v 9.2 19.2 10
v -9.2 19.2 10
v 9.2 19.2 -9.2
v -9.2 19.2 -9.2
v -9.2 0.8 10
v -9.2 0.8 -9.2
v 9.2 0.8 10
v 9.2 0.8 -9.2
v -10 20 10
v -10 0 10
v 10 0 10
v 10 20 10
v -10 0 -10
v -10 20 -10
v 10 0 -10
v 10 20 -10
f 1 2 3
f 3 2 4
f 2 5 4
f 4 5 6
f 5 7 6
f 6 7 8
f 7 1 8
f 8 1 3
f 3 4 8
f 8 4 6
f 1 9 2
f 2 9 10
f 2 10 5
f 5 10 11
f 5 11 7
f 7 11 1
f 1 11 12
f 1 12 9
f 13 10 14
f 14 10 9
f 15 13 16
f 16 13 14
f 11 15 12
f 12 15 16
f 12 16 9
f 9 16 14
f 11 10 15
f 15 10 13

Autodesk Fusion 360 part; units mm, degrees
sketch "Sketch1" plane through (0, 0, 0) normal (0, 1, 0) x (1, 0, 0)
  line L0 (10, 10) -> (-10, 10)
  line L1 (-10, 10) -> (-10, -10)
  line L2 (-10, -10) -> (10, -10)
  line L3 (10, -10) -> (10, 10)
  line L4 (10, 10) -> (-10, -10) construction
  line L5 (-10, 10) -> (10, -10) construction
  dimension "d1" = 20
  dimension "d2" = 20
extrude "Extrude1" add sketch "Sketch1" along normal blind 20
sketch "Sketch2" plane through (0, 0, 10) normal (0, 0, 1) x (-1, 0, 0)
  line L0 (10, 0) -> (-10, 0)
  line L1 (-10, 0) -> (-10, -20)
  line L2 (-10, -20) -> (10, -20)
  line L3 (10, -20) -> (10, 0)
  line L4 (9.2, -0.8) -> (9.2, -19.2)
  line L5 (9.2, -19.2) -> (-9.2, -19.2)
  line L6 (-9.2, -19.2) -> (-9.2, -0.8)
  line L7 (-9.2, -0.8) -> (9.2, -0.8)
  dimension "d5" = 0.8
  dimension "d6" = 0.8
  dimension "d7" = 0.8
  dimension "d8" = 0.8
extrude "Extrude2" cut sketch "Sketch2" against normal blind 19.2 contours L4 L5 L6 L7
